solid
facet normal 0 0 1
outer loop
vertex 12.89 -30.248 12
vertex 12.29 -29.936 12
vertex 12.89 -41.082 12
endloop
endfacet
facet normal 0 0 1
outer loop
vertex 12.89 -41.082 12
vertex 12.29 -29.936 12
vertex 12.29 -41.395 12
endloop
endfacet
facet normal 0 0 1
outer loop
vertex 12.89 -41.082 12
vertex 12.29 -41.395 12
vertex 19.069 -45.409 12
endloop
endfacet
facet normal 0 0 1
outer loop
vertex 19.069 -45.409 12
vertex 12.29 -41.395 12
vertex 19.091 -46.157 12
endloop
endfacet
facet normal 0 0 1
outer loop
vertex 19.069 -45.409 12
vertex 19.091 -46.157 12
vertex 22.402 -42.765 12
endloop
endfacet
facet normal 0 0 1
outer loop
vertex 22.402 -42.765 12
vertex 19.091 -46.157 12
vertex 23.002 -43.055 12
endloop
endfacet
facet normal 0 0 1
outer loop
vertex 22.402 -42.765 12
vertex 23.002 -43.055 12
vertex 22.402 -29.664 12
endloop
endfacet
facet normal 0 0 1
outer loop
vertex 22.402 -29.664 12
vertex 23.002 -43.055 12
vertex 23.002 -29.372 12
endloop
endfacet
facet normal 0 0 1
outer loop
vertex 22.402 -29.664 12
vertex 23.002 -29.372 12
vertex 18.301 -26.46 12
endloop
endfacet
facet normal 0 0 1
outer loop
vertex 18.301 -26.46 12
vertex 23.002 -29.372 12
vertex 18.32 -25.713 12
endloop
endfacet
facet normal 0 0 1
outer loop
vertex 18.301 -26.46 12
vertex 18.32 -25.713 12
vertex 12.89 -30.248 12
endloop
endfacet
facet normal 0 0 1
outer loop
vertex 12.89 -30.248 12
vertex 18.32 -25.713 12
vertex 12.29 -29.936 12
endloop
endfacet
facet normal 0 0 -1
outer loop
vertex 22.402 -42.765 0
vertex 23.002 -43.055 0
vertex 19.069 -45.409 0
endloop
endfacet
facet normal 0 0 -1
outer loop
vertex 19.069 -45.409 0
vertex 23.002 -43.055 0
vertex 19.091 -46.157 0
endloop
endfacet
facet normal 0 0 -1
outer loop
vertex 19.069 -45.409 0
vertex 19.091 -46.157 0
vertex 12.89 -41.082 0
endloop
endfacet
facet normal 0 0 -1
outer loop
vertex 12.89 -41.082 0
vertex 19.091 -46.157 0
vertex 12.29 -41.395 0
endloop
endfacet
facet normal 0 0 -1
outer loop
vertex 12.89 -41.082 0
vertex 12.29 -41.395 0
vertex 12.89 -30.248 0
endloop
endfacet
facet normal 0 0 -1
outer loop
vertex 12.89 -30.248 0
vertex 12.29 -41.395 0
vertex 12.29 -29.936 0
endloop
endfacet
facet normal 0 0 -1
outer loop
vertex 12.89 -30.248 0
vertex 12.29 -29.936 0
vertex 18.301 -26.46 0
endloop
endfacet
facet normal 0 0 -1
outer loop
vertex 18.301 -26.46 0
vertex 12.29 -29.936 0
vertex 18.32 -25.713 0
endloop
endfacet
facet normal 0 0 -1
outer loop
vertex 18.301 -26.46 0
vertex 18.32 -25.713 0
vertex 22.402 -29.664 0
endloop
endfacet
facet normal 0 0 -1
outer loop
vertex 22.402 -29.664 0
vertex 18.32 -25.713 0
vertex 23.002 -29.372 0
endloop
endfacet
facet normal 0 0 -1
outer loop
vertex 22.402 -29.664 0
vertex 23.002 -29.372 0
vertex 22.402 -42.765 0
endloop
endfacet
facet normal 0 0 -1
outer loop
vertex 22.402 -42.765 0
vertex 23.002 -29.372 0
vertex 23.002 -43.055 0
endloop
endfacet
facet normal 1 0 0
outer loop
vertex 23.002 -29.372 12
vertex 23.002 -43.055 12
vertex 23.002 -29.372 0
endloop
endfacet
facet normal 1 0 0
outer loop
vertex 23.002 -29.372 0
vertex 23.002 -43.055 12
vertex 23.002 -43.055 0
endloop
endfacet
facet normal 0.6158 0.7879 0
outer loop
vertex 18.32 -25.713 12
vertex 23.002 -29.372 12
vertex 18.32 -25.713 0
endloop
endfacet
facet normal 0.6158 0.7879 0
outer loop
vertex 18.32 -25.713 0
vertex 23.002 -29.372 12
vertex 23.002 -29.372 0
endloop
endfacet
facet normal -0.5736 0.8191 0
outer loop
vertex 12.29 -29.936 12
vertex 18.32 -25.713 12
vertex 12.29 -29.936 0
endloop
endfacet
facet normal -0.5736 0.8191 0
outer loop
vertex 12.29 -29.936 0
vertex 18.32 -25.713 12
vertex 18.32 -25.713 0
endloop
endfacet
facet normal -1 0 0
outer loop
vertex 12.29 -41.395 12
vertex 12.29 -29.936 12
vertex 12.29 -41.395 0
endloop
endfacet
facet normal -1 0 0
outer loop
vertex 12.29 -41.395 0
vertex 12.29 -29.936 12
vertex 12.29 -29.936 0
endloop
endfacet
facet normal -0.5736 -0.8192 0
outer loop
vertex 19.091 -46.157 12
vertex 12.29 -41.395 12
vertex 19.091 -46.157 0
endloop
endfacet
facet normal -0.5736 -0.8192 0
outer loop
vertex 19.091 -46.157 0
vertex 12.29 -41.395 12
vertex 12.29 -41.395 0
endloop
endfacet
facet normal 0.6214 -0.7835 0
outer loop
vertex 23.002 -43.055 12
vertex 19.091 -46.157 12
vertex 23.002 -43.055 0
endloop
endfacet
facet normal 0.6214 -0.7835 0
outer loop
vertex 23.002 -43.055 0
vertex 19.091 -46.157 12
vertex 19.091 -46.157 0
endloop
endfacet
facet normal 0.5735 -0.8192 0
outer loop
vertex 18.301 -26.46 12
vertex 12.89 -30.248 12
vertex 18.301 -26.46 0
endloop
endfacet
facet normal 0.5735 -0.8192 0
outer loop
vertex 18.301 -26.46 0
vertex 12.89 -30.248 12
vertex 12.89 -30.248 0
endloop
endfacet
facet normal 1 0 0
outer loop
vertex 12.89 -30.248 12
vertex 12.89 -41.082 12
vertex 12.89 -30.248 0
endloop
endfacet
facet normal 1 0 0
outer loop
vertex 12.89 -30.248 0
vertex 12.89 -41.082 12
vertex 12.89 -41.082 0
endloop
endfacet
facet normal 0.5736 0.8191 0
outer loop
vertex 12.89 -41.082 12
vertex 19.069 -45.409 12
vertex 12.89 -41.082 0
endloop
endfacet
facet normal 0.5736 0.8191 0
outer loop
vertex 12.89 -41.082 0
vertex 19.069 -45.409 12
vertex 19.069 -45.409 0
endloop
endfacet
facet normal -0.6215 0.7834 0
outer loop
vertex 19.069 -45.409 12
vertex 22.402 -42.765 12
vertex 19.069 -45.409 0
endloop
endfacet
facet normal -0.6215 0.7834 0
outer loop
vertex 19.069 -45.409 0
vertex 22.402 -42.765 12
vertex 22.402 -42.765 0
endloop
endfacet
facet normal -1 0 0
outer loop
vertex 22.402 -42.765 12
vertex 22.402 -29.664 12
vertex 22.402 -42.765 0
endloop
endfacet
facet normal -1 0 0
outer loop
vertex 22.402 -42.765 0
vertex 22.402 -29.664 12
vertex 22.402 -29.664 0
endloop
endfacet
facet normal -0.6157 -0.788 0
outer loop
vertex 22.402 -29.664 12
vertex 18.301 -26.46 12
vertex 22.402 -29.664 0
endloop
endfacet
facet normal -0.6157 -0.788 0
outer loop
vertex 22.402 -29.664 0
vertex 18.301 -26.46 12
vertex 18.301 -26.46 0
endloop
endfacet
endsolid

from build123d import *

# Parameters (mm, degrees)
BOSS_EXTRUDE1_DEPTH = 12


with BuildPart() as part:
    # Sketch1 → Boss-Extrude1 (new body)
    with BuildSketch(Plane.XY):
        Polygon((23.002215311, -29.371596289), (18.32005302, -25.71349019), (17.806104696, -26.07336068), (12.290321363, -29.935553749), (12.290321363, -41.394710348), (19.091253879, -46.156774563), (23.002215311, -43.055211302), align=None)
        Polygon((18.150250558, -26.564851907), (12.890321363, -30.24789398), (12.890321363, -41.082370118), (19.06894702, -45.408690378), (22.402215311, -42.765263014), (22.402215311, -29.664235842), (18.300514505, -26.459635958), align=None, mode=Mode.SUBTRACT)
    extrude(amount=BOSS_EXTRUDE1_DEPTH)


solid = part.part
